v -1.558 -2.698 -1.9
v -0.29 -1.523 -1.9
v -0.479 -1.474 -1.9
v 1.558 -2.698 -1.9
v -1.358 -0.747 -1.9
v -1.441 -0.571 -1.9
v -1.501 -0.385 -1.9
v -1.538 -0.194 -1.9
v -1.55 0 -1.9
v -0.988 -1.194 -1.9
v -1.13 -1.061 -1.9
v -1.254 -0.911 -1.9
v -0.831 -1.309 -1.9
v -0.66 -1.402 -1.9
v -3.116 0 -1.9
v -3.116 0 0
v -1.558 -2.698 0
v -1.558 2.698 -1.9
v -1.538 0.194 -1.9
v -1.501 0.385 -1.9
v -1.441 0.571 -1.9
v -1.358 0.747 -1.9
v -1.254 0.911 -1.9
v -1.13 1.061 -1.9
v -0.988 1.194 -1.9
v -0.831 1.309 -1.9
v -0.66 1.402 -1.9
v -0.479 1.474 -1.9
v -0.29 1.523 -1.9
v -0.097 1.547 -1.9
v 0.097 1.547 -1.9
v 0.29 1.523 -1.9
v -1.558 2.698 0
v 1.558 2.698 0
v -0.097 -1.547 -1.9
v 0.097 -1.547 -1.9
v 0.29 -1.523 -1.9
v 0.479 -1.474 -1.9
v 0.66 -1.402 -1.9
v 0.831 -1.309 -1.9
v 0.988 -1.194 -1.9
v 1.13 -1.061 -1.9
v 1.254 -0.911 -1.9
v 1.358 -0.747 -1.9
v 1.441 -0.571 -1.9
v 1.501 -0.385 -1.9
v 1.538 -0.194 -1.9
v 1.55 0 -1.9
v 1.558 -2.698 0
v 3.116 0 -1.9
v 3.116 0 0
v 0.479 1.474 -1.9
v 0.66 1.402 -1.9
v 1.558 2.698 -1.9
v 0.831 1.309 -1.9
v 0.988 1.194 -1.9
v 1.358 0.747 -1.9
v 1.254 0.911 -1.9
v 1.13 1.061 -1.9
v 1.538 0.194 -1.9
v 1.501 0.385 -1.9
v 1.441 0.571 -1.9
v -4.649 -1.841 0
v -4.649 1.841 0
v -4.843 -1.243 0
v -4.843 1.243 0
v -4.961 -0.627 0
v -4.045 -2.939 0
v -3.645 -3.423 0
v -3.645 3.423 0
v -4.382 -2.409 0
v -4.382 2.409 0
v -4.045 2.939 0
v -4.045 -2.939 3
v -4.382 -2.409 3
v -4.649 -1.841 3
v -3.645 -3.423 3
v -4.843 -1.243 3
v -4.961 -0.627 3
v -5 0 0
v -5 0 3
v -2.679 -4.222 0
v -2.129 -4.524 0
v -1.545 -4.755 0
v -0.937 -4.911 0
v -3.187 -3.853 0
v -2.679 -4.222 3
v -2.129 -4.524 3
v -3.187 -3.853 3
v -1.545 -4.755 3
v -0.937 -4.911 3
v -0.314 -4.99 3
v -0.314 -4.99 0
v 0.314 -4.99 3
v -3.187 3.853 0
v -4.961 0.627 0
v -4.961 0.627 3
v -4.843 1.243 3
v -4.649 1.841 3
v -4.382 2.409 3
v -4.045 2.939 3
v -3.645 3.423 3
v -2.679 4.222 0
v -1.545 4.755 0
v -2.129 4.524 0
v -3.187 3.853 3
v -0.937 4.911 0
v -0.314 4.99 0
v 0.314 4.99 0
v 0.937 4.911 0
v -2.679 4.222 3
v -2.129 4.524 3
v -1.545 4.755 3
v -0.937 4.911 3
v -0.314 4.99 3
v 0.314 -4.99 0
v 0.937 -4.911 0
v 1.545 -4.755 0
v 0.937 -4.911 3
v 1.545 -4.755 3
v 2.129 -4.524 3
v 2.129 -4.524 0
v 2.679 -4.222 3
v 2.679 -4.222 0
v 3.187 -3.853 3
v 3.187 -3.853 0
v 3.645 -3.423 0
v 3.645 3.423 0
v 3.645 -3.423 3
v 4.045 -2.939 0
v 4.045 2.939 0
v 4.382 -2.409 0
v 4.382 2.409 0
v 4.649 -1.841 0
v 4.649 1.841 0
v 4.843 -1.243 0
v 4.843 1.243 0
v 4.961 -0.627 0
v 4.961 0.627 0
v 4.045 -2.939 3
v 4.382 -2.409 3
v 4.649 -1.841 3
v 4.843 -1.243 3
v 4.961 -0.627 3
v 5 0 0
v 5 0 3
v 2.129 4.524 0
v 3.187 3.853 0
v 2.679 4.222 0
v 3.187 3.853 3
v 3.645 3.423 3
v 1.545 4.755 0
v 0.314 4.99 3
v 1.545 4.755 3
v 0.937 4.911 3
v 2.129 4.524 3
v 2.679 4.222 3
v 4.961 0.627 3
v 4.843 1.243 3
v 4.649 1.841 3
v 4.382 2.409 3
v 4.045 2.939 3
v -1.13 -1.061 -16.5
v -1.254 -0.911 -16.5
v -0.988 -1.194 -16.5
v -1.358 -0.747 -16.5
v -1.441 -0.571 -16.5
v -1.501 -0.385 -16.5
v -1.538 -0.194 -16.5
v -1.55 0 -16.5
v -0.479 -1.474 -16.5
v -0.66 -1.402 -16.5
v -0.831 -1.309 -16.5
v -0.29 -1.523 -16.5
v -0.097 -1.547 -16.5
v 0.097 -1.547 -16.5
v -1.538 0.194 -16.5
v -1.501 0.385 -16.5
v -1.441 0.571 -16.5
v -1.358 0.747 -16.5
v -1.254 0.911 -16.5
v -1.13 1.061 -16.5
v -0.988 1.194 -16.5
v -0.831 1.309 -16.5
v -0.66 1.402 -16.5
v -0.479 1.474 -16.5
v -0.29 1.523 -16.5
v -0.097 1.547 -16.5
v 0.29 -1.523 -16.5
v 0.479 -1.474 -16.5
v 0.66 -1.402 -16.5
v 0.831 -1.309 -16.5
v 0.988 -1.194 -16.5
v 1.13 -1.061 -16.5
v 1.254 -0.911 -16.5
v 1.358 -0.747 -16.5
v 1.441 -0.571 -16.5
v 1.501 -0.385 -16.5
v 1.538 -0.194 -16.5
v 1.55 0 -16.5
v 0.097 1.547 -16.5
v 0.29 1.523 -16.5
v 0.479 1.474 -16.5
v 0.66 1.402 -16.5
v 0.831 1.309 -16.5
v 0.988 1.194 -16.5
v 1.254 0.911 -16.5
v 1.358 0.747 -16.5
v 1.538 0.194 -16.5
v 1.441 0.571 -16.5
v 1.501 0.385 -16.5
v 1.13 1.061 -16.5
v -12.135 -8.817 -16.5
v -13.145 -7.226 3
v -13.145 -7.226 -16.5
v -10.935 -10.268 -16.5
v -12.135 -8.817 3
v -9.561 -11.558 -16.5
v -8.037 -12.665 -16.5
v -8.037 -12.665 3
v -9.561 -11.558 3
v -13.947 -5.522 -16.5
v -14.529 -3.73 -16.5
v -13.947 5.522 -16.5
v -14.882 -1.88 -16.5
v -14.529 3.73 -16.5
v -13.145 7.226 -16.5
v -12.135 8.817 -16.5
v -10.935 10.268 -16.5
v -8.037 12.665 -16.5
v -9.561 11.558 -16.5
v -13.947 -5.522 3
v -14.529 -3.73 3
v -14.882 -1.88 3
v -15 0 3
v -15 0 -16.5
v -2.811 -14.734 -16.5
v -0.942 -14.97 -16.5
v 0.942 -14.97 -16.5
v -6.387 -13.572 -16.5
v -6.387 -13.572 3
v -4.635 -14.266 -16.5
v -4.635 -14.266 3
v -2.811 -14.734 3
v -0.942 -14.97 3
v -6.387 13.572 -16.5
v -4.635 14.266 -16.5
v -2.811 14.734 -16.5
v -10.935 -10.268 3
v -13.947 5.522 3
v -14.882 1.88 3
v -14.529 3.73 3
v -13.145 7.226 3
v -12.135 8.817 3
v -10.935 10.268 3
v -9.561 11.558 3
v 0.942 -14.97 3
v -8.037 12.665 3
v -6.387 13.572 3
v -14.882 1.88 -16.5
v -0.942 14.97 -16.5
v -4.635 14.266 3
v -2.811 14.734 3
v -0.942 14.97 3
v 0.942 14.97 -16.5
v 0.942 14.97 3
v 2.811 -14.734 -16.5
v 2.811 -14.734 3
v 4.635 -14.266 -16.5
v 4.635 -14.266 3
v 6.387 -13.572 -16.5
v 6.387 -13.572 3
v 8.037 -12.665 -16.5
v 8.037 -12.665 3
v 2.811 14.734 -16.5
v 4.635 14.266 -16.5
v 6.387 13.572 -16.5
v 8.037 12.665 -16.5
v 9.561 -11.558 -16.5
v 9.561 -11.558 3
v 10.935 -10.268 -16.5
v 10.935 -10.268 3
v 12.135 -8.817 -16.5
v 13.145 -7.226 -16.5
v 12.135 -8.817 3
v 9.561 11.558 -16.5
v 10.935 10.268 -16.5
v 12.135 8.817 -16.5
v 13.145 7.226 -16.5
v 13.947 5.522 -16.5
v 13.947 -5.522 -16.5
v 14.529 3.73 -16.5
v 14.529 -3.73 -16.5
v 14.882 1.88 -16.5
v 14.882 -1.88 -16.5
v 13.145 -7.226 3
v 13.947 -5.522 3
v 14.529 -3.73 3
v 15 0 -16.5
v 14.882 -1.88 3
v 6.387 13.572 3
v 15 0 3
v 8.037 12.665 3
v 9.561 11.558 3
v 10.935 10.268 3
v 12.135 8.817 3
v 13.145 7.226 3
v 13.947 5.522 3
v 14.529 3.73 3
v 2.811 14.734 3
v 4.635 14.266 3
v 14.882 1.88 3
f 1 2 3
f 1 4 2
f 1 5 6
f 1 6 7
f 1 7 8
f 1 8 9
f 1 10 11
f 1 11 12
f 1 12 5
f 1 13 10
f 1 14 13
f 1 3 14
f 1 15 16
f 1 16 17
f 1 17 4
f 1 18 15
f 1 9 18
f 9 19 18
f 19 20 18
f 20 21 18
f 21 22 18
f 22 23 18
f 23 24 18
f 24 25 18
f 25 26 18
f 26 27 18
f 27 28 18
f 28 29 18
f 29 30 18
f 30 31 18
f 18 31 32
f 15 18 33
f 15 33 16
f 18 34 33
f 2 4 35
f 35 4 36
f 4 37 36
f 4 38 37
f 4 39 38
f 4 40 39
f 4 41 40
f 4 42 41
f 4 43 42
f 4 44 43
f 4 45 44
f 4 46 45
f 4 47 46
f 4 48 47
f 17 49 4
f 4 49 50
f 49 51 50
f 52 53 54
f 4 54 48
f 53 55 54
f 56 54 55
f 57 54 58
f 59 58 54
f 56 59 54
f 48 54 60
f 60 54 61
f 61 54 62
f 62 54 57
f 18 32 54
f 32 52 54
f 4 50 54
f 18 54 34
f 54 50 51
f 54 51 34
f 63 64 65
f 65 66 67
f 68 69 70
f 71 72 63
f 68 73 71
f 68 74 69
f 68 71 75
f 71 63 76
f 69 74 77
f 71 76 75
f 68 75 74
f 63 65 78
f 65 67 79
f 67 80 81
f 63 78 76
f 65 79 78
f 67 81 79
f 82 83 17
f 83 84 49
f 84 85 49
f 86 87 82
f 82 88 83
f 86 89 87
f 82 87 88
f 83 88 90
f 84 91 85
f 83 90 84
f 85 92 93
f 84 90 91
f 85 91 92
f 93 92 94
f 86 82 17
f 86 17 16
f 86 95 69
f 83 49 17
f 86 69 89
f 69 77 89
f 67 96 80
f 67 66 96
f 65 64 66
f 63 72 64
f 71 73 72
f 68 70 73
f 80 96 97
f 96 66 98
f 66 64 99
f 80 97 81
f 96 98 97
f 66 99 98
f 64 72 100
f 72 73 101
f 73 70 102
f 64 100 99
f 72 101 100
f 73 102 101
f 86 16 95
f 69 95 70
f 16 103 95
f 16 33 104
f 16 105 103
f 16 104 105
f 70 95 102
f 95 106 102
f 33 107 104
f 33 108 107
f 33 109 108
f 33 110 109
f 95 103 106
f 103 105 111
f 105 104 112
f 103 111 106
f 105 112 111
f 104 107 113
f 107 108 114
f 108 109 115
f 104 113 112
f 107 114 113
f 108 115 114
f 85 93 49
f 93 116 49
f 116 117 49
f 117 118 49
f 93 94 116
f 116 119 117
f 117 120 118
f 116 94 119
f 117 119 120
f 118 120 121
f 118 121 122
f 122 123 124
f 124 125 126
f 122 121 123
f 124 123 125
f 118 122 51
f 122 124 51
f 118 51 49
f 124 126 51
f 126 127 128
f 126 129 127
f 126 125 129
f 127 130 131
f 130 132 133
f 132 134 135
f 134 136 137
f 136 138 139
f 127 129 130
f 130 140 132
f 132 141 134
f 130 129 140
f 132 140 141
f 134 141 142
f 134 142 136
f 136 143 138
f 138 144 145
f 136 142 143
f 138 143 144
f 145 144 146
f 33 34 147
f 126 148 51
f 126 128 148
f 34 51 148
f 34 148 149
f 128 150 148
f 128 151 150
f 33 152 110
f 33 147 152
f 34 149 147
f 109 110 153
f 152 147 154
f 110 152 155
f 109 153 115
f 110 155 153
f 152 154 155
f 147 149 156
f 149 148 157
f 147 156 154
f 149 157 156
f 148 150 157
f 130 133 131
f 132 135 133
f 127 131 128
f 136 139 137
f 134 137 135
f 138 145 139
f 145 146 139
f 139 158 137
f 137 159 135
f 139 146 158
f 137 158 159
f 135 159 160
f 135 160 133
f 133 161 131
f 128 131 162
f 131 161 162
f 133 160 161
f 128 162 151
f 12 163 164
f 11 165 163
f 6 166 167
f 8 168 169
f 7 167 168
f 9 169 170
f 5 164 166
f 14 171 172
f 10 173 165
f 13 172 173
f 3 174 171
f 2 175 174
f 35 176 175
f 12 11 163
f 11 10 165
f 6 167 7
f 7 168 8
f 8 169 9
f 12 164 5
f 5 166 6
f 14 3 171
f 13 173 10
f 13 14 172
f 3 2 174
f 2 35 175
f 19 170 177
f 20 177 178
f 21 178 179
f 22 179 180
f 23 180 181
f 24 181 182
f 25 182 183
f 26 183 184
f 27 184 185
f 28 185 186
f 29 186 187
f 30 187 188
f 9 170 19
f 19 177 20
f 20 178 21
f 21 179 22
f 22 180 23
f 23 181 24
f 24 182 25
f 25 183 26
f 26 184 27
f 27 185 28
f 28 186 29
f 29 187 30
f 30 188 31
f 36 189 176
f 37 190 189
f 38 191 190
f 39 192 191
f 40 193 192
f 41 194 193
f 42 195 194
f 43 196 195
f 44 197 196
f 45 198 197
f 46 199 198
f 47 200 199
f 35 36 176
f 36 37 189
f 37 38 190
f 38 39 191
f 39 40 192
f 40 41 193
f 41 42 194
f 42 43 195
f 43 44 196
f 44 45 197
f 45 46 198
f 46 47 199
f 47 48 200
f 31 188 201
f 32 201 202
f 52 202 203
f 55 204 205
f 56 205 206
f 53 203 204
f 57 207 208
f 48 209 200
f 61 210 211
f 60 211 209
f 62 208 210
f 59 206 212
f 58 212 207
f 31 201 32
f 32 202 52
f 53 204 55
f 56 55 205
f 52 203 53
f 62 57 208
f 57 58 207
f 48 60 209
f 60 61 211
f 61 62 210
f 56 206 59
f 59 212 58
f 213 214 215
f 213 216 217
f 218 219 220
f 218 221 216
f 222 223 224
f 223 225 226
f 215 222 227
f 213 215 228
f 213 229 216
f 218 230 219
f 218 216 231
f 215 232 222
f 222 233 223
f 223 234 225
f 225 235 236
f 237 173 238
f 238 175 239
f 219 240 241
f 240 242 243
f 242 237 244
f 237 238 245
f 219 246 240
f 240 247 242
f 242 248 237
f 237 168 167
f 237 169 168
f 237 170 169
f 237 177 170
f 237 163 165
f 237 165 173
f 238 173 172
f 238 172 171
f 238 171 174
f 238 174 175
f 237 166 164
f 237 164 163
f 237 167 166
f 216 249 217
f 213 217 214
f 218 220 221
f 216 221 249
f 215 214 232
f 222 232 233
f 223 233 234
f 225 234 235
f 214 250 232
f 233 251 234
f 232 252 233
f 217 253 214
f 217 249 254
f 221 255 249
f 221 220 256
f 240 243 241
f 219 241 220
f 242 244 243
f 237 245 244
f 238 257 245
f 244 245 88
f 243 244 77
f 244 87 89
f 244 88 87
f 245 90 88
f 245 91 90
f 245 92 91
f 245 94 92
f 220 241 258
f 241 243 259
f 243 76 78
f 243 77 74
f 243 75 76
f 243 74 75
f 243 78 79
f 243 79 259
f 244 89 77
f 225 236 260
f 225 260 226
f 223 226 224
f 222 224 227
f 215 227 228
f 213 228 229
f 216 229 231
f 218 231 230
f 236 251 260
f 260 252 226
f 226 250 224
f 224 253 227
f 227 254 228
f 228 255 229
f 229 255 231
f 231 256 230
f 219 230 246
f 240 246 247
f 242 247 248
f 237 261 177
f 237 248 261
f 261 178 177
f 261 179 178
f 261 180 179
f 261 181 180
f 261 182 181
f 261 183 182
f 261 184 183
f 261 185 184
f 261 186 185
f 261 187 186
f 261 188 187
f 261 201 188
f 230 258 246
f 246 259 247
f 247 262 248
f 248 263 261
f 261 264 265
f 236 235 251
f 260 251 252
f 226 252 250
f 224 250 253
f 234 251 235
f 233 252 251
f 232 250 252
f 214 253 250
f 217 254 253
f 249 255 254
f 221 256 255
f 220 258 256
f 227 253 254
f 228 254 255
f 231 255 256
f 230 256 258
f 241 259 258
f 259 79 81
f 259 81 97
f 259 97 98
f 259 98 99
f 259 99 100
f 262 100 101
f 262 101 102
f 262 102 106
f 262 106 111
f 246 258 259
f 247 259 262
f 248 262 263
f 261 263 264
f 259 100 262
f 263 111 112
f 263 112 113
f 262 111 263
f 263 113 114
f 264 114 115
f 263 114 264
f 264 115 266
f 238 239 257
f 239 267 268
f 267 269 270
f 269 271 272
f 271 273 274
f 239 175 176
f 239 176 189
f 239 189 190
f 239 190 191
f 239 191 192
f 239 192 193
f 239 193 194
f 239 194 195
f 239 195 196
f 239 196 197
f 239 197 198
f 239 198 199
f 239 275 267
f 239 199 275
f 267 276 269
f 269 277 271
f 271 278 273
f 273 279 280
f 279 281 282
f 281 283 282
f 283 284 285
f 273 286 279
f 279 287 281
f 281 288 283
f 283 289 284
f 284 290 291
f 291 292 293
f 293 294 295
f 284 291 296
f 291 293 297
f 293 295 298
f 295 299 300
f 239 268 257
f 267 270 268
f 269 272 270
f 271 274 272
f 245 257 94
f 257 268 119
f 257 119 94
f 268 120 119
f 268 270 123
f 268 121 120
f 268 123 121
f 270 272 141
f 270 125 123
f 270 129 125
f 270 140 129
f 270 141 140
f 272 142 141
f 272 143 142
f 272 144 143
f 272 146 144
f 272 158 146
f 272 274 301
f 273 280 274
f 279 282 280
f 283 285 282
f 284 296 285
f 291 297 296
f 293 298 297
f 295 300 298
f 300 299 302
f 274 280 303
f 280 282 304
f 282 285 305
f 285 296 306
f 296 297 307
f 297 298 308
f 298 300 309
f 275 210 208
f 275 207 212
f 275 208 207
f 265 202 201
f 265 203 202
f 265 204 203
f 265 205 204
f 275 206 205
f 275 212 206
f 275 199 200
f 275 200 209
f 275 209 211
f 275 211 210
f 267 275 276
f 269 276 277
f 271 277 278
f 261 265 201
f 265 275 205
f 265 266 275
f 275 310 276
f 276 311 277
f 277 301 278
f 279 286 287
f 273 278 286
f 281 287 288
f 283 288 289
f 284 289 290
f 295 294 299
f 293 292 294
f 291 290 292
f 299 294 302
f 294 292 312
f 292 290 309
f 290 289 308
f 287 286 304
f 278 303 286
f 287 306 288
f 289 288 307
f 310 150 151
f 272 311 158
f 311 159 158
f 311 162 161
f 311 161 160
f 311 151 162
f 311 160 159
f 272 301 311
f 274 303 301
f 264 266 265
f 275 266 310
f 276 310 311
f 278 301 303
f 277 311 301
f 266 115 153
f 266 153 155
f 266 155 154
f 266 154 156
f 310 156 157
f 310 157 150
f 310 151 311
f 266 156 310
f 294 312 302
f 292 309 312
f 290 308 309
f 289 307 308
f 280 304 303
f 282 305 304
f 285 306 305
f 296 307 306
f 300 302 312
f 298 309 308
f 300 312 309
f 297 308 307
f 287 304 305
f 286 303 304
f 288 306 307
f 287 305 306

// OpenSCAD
$fn = 50;

difference() {
	union() {
		translate(v = [0, 0, -16.5]) {
			cylinder(h = 19.5, r = 15.0);
		}
	}
	union() {
		translate(v = [0, 0, 0]) {
			rotate(a = [0, 0, 0]) {
				difference() {
					union() {
						translate(v = [0, 0, -1.9]) {
							linear_extrude(height = 1.9) {
								polygon(points = [[3.1158, 0.0], [1.5579000000000005, 2.698361953111554], [-1.5578999999999994, 2.6983619531115544], [-3.1158, 3.815754496783323e-16], [-1.5579000000000014, -2.6983619531115535], [1.557899999999998, -2.6983619531115552]]);
							}
						}
					}
					union();
				}
			}
		}
		#cylinder(h = 3, r = 5.0);
		#translate(v = [0, 0, -100.0]) {
			cylinder(h = 200, r = 1.55);
		}
	}
}
